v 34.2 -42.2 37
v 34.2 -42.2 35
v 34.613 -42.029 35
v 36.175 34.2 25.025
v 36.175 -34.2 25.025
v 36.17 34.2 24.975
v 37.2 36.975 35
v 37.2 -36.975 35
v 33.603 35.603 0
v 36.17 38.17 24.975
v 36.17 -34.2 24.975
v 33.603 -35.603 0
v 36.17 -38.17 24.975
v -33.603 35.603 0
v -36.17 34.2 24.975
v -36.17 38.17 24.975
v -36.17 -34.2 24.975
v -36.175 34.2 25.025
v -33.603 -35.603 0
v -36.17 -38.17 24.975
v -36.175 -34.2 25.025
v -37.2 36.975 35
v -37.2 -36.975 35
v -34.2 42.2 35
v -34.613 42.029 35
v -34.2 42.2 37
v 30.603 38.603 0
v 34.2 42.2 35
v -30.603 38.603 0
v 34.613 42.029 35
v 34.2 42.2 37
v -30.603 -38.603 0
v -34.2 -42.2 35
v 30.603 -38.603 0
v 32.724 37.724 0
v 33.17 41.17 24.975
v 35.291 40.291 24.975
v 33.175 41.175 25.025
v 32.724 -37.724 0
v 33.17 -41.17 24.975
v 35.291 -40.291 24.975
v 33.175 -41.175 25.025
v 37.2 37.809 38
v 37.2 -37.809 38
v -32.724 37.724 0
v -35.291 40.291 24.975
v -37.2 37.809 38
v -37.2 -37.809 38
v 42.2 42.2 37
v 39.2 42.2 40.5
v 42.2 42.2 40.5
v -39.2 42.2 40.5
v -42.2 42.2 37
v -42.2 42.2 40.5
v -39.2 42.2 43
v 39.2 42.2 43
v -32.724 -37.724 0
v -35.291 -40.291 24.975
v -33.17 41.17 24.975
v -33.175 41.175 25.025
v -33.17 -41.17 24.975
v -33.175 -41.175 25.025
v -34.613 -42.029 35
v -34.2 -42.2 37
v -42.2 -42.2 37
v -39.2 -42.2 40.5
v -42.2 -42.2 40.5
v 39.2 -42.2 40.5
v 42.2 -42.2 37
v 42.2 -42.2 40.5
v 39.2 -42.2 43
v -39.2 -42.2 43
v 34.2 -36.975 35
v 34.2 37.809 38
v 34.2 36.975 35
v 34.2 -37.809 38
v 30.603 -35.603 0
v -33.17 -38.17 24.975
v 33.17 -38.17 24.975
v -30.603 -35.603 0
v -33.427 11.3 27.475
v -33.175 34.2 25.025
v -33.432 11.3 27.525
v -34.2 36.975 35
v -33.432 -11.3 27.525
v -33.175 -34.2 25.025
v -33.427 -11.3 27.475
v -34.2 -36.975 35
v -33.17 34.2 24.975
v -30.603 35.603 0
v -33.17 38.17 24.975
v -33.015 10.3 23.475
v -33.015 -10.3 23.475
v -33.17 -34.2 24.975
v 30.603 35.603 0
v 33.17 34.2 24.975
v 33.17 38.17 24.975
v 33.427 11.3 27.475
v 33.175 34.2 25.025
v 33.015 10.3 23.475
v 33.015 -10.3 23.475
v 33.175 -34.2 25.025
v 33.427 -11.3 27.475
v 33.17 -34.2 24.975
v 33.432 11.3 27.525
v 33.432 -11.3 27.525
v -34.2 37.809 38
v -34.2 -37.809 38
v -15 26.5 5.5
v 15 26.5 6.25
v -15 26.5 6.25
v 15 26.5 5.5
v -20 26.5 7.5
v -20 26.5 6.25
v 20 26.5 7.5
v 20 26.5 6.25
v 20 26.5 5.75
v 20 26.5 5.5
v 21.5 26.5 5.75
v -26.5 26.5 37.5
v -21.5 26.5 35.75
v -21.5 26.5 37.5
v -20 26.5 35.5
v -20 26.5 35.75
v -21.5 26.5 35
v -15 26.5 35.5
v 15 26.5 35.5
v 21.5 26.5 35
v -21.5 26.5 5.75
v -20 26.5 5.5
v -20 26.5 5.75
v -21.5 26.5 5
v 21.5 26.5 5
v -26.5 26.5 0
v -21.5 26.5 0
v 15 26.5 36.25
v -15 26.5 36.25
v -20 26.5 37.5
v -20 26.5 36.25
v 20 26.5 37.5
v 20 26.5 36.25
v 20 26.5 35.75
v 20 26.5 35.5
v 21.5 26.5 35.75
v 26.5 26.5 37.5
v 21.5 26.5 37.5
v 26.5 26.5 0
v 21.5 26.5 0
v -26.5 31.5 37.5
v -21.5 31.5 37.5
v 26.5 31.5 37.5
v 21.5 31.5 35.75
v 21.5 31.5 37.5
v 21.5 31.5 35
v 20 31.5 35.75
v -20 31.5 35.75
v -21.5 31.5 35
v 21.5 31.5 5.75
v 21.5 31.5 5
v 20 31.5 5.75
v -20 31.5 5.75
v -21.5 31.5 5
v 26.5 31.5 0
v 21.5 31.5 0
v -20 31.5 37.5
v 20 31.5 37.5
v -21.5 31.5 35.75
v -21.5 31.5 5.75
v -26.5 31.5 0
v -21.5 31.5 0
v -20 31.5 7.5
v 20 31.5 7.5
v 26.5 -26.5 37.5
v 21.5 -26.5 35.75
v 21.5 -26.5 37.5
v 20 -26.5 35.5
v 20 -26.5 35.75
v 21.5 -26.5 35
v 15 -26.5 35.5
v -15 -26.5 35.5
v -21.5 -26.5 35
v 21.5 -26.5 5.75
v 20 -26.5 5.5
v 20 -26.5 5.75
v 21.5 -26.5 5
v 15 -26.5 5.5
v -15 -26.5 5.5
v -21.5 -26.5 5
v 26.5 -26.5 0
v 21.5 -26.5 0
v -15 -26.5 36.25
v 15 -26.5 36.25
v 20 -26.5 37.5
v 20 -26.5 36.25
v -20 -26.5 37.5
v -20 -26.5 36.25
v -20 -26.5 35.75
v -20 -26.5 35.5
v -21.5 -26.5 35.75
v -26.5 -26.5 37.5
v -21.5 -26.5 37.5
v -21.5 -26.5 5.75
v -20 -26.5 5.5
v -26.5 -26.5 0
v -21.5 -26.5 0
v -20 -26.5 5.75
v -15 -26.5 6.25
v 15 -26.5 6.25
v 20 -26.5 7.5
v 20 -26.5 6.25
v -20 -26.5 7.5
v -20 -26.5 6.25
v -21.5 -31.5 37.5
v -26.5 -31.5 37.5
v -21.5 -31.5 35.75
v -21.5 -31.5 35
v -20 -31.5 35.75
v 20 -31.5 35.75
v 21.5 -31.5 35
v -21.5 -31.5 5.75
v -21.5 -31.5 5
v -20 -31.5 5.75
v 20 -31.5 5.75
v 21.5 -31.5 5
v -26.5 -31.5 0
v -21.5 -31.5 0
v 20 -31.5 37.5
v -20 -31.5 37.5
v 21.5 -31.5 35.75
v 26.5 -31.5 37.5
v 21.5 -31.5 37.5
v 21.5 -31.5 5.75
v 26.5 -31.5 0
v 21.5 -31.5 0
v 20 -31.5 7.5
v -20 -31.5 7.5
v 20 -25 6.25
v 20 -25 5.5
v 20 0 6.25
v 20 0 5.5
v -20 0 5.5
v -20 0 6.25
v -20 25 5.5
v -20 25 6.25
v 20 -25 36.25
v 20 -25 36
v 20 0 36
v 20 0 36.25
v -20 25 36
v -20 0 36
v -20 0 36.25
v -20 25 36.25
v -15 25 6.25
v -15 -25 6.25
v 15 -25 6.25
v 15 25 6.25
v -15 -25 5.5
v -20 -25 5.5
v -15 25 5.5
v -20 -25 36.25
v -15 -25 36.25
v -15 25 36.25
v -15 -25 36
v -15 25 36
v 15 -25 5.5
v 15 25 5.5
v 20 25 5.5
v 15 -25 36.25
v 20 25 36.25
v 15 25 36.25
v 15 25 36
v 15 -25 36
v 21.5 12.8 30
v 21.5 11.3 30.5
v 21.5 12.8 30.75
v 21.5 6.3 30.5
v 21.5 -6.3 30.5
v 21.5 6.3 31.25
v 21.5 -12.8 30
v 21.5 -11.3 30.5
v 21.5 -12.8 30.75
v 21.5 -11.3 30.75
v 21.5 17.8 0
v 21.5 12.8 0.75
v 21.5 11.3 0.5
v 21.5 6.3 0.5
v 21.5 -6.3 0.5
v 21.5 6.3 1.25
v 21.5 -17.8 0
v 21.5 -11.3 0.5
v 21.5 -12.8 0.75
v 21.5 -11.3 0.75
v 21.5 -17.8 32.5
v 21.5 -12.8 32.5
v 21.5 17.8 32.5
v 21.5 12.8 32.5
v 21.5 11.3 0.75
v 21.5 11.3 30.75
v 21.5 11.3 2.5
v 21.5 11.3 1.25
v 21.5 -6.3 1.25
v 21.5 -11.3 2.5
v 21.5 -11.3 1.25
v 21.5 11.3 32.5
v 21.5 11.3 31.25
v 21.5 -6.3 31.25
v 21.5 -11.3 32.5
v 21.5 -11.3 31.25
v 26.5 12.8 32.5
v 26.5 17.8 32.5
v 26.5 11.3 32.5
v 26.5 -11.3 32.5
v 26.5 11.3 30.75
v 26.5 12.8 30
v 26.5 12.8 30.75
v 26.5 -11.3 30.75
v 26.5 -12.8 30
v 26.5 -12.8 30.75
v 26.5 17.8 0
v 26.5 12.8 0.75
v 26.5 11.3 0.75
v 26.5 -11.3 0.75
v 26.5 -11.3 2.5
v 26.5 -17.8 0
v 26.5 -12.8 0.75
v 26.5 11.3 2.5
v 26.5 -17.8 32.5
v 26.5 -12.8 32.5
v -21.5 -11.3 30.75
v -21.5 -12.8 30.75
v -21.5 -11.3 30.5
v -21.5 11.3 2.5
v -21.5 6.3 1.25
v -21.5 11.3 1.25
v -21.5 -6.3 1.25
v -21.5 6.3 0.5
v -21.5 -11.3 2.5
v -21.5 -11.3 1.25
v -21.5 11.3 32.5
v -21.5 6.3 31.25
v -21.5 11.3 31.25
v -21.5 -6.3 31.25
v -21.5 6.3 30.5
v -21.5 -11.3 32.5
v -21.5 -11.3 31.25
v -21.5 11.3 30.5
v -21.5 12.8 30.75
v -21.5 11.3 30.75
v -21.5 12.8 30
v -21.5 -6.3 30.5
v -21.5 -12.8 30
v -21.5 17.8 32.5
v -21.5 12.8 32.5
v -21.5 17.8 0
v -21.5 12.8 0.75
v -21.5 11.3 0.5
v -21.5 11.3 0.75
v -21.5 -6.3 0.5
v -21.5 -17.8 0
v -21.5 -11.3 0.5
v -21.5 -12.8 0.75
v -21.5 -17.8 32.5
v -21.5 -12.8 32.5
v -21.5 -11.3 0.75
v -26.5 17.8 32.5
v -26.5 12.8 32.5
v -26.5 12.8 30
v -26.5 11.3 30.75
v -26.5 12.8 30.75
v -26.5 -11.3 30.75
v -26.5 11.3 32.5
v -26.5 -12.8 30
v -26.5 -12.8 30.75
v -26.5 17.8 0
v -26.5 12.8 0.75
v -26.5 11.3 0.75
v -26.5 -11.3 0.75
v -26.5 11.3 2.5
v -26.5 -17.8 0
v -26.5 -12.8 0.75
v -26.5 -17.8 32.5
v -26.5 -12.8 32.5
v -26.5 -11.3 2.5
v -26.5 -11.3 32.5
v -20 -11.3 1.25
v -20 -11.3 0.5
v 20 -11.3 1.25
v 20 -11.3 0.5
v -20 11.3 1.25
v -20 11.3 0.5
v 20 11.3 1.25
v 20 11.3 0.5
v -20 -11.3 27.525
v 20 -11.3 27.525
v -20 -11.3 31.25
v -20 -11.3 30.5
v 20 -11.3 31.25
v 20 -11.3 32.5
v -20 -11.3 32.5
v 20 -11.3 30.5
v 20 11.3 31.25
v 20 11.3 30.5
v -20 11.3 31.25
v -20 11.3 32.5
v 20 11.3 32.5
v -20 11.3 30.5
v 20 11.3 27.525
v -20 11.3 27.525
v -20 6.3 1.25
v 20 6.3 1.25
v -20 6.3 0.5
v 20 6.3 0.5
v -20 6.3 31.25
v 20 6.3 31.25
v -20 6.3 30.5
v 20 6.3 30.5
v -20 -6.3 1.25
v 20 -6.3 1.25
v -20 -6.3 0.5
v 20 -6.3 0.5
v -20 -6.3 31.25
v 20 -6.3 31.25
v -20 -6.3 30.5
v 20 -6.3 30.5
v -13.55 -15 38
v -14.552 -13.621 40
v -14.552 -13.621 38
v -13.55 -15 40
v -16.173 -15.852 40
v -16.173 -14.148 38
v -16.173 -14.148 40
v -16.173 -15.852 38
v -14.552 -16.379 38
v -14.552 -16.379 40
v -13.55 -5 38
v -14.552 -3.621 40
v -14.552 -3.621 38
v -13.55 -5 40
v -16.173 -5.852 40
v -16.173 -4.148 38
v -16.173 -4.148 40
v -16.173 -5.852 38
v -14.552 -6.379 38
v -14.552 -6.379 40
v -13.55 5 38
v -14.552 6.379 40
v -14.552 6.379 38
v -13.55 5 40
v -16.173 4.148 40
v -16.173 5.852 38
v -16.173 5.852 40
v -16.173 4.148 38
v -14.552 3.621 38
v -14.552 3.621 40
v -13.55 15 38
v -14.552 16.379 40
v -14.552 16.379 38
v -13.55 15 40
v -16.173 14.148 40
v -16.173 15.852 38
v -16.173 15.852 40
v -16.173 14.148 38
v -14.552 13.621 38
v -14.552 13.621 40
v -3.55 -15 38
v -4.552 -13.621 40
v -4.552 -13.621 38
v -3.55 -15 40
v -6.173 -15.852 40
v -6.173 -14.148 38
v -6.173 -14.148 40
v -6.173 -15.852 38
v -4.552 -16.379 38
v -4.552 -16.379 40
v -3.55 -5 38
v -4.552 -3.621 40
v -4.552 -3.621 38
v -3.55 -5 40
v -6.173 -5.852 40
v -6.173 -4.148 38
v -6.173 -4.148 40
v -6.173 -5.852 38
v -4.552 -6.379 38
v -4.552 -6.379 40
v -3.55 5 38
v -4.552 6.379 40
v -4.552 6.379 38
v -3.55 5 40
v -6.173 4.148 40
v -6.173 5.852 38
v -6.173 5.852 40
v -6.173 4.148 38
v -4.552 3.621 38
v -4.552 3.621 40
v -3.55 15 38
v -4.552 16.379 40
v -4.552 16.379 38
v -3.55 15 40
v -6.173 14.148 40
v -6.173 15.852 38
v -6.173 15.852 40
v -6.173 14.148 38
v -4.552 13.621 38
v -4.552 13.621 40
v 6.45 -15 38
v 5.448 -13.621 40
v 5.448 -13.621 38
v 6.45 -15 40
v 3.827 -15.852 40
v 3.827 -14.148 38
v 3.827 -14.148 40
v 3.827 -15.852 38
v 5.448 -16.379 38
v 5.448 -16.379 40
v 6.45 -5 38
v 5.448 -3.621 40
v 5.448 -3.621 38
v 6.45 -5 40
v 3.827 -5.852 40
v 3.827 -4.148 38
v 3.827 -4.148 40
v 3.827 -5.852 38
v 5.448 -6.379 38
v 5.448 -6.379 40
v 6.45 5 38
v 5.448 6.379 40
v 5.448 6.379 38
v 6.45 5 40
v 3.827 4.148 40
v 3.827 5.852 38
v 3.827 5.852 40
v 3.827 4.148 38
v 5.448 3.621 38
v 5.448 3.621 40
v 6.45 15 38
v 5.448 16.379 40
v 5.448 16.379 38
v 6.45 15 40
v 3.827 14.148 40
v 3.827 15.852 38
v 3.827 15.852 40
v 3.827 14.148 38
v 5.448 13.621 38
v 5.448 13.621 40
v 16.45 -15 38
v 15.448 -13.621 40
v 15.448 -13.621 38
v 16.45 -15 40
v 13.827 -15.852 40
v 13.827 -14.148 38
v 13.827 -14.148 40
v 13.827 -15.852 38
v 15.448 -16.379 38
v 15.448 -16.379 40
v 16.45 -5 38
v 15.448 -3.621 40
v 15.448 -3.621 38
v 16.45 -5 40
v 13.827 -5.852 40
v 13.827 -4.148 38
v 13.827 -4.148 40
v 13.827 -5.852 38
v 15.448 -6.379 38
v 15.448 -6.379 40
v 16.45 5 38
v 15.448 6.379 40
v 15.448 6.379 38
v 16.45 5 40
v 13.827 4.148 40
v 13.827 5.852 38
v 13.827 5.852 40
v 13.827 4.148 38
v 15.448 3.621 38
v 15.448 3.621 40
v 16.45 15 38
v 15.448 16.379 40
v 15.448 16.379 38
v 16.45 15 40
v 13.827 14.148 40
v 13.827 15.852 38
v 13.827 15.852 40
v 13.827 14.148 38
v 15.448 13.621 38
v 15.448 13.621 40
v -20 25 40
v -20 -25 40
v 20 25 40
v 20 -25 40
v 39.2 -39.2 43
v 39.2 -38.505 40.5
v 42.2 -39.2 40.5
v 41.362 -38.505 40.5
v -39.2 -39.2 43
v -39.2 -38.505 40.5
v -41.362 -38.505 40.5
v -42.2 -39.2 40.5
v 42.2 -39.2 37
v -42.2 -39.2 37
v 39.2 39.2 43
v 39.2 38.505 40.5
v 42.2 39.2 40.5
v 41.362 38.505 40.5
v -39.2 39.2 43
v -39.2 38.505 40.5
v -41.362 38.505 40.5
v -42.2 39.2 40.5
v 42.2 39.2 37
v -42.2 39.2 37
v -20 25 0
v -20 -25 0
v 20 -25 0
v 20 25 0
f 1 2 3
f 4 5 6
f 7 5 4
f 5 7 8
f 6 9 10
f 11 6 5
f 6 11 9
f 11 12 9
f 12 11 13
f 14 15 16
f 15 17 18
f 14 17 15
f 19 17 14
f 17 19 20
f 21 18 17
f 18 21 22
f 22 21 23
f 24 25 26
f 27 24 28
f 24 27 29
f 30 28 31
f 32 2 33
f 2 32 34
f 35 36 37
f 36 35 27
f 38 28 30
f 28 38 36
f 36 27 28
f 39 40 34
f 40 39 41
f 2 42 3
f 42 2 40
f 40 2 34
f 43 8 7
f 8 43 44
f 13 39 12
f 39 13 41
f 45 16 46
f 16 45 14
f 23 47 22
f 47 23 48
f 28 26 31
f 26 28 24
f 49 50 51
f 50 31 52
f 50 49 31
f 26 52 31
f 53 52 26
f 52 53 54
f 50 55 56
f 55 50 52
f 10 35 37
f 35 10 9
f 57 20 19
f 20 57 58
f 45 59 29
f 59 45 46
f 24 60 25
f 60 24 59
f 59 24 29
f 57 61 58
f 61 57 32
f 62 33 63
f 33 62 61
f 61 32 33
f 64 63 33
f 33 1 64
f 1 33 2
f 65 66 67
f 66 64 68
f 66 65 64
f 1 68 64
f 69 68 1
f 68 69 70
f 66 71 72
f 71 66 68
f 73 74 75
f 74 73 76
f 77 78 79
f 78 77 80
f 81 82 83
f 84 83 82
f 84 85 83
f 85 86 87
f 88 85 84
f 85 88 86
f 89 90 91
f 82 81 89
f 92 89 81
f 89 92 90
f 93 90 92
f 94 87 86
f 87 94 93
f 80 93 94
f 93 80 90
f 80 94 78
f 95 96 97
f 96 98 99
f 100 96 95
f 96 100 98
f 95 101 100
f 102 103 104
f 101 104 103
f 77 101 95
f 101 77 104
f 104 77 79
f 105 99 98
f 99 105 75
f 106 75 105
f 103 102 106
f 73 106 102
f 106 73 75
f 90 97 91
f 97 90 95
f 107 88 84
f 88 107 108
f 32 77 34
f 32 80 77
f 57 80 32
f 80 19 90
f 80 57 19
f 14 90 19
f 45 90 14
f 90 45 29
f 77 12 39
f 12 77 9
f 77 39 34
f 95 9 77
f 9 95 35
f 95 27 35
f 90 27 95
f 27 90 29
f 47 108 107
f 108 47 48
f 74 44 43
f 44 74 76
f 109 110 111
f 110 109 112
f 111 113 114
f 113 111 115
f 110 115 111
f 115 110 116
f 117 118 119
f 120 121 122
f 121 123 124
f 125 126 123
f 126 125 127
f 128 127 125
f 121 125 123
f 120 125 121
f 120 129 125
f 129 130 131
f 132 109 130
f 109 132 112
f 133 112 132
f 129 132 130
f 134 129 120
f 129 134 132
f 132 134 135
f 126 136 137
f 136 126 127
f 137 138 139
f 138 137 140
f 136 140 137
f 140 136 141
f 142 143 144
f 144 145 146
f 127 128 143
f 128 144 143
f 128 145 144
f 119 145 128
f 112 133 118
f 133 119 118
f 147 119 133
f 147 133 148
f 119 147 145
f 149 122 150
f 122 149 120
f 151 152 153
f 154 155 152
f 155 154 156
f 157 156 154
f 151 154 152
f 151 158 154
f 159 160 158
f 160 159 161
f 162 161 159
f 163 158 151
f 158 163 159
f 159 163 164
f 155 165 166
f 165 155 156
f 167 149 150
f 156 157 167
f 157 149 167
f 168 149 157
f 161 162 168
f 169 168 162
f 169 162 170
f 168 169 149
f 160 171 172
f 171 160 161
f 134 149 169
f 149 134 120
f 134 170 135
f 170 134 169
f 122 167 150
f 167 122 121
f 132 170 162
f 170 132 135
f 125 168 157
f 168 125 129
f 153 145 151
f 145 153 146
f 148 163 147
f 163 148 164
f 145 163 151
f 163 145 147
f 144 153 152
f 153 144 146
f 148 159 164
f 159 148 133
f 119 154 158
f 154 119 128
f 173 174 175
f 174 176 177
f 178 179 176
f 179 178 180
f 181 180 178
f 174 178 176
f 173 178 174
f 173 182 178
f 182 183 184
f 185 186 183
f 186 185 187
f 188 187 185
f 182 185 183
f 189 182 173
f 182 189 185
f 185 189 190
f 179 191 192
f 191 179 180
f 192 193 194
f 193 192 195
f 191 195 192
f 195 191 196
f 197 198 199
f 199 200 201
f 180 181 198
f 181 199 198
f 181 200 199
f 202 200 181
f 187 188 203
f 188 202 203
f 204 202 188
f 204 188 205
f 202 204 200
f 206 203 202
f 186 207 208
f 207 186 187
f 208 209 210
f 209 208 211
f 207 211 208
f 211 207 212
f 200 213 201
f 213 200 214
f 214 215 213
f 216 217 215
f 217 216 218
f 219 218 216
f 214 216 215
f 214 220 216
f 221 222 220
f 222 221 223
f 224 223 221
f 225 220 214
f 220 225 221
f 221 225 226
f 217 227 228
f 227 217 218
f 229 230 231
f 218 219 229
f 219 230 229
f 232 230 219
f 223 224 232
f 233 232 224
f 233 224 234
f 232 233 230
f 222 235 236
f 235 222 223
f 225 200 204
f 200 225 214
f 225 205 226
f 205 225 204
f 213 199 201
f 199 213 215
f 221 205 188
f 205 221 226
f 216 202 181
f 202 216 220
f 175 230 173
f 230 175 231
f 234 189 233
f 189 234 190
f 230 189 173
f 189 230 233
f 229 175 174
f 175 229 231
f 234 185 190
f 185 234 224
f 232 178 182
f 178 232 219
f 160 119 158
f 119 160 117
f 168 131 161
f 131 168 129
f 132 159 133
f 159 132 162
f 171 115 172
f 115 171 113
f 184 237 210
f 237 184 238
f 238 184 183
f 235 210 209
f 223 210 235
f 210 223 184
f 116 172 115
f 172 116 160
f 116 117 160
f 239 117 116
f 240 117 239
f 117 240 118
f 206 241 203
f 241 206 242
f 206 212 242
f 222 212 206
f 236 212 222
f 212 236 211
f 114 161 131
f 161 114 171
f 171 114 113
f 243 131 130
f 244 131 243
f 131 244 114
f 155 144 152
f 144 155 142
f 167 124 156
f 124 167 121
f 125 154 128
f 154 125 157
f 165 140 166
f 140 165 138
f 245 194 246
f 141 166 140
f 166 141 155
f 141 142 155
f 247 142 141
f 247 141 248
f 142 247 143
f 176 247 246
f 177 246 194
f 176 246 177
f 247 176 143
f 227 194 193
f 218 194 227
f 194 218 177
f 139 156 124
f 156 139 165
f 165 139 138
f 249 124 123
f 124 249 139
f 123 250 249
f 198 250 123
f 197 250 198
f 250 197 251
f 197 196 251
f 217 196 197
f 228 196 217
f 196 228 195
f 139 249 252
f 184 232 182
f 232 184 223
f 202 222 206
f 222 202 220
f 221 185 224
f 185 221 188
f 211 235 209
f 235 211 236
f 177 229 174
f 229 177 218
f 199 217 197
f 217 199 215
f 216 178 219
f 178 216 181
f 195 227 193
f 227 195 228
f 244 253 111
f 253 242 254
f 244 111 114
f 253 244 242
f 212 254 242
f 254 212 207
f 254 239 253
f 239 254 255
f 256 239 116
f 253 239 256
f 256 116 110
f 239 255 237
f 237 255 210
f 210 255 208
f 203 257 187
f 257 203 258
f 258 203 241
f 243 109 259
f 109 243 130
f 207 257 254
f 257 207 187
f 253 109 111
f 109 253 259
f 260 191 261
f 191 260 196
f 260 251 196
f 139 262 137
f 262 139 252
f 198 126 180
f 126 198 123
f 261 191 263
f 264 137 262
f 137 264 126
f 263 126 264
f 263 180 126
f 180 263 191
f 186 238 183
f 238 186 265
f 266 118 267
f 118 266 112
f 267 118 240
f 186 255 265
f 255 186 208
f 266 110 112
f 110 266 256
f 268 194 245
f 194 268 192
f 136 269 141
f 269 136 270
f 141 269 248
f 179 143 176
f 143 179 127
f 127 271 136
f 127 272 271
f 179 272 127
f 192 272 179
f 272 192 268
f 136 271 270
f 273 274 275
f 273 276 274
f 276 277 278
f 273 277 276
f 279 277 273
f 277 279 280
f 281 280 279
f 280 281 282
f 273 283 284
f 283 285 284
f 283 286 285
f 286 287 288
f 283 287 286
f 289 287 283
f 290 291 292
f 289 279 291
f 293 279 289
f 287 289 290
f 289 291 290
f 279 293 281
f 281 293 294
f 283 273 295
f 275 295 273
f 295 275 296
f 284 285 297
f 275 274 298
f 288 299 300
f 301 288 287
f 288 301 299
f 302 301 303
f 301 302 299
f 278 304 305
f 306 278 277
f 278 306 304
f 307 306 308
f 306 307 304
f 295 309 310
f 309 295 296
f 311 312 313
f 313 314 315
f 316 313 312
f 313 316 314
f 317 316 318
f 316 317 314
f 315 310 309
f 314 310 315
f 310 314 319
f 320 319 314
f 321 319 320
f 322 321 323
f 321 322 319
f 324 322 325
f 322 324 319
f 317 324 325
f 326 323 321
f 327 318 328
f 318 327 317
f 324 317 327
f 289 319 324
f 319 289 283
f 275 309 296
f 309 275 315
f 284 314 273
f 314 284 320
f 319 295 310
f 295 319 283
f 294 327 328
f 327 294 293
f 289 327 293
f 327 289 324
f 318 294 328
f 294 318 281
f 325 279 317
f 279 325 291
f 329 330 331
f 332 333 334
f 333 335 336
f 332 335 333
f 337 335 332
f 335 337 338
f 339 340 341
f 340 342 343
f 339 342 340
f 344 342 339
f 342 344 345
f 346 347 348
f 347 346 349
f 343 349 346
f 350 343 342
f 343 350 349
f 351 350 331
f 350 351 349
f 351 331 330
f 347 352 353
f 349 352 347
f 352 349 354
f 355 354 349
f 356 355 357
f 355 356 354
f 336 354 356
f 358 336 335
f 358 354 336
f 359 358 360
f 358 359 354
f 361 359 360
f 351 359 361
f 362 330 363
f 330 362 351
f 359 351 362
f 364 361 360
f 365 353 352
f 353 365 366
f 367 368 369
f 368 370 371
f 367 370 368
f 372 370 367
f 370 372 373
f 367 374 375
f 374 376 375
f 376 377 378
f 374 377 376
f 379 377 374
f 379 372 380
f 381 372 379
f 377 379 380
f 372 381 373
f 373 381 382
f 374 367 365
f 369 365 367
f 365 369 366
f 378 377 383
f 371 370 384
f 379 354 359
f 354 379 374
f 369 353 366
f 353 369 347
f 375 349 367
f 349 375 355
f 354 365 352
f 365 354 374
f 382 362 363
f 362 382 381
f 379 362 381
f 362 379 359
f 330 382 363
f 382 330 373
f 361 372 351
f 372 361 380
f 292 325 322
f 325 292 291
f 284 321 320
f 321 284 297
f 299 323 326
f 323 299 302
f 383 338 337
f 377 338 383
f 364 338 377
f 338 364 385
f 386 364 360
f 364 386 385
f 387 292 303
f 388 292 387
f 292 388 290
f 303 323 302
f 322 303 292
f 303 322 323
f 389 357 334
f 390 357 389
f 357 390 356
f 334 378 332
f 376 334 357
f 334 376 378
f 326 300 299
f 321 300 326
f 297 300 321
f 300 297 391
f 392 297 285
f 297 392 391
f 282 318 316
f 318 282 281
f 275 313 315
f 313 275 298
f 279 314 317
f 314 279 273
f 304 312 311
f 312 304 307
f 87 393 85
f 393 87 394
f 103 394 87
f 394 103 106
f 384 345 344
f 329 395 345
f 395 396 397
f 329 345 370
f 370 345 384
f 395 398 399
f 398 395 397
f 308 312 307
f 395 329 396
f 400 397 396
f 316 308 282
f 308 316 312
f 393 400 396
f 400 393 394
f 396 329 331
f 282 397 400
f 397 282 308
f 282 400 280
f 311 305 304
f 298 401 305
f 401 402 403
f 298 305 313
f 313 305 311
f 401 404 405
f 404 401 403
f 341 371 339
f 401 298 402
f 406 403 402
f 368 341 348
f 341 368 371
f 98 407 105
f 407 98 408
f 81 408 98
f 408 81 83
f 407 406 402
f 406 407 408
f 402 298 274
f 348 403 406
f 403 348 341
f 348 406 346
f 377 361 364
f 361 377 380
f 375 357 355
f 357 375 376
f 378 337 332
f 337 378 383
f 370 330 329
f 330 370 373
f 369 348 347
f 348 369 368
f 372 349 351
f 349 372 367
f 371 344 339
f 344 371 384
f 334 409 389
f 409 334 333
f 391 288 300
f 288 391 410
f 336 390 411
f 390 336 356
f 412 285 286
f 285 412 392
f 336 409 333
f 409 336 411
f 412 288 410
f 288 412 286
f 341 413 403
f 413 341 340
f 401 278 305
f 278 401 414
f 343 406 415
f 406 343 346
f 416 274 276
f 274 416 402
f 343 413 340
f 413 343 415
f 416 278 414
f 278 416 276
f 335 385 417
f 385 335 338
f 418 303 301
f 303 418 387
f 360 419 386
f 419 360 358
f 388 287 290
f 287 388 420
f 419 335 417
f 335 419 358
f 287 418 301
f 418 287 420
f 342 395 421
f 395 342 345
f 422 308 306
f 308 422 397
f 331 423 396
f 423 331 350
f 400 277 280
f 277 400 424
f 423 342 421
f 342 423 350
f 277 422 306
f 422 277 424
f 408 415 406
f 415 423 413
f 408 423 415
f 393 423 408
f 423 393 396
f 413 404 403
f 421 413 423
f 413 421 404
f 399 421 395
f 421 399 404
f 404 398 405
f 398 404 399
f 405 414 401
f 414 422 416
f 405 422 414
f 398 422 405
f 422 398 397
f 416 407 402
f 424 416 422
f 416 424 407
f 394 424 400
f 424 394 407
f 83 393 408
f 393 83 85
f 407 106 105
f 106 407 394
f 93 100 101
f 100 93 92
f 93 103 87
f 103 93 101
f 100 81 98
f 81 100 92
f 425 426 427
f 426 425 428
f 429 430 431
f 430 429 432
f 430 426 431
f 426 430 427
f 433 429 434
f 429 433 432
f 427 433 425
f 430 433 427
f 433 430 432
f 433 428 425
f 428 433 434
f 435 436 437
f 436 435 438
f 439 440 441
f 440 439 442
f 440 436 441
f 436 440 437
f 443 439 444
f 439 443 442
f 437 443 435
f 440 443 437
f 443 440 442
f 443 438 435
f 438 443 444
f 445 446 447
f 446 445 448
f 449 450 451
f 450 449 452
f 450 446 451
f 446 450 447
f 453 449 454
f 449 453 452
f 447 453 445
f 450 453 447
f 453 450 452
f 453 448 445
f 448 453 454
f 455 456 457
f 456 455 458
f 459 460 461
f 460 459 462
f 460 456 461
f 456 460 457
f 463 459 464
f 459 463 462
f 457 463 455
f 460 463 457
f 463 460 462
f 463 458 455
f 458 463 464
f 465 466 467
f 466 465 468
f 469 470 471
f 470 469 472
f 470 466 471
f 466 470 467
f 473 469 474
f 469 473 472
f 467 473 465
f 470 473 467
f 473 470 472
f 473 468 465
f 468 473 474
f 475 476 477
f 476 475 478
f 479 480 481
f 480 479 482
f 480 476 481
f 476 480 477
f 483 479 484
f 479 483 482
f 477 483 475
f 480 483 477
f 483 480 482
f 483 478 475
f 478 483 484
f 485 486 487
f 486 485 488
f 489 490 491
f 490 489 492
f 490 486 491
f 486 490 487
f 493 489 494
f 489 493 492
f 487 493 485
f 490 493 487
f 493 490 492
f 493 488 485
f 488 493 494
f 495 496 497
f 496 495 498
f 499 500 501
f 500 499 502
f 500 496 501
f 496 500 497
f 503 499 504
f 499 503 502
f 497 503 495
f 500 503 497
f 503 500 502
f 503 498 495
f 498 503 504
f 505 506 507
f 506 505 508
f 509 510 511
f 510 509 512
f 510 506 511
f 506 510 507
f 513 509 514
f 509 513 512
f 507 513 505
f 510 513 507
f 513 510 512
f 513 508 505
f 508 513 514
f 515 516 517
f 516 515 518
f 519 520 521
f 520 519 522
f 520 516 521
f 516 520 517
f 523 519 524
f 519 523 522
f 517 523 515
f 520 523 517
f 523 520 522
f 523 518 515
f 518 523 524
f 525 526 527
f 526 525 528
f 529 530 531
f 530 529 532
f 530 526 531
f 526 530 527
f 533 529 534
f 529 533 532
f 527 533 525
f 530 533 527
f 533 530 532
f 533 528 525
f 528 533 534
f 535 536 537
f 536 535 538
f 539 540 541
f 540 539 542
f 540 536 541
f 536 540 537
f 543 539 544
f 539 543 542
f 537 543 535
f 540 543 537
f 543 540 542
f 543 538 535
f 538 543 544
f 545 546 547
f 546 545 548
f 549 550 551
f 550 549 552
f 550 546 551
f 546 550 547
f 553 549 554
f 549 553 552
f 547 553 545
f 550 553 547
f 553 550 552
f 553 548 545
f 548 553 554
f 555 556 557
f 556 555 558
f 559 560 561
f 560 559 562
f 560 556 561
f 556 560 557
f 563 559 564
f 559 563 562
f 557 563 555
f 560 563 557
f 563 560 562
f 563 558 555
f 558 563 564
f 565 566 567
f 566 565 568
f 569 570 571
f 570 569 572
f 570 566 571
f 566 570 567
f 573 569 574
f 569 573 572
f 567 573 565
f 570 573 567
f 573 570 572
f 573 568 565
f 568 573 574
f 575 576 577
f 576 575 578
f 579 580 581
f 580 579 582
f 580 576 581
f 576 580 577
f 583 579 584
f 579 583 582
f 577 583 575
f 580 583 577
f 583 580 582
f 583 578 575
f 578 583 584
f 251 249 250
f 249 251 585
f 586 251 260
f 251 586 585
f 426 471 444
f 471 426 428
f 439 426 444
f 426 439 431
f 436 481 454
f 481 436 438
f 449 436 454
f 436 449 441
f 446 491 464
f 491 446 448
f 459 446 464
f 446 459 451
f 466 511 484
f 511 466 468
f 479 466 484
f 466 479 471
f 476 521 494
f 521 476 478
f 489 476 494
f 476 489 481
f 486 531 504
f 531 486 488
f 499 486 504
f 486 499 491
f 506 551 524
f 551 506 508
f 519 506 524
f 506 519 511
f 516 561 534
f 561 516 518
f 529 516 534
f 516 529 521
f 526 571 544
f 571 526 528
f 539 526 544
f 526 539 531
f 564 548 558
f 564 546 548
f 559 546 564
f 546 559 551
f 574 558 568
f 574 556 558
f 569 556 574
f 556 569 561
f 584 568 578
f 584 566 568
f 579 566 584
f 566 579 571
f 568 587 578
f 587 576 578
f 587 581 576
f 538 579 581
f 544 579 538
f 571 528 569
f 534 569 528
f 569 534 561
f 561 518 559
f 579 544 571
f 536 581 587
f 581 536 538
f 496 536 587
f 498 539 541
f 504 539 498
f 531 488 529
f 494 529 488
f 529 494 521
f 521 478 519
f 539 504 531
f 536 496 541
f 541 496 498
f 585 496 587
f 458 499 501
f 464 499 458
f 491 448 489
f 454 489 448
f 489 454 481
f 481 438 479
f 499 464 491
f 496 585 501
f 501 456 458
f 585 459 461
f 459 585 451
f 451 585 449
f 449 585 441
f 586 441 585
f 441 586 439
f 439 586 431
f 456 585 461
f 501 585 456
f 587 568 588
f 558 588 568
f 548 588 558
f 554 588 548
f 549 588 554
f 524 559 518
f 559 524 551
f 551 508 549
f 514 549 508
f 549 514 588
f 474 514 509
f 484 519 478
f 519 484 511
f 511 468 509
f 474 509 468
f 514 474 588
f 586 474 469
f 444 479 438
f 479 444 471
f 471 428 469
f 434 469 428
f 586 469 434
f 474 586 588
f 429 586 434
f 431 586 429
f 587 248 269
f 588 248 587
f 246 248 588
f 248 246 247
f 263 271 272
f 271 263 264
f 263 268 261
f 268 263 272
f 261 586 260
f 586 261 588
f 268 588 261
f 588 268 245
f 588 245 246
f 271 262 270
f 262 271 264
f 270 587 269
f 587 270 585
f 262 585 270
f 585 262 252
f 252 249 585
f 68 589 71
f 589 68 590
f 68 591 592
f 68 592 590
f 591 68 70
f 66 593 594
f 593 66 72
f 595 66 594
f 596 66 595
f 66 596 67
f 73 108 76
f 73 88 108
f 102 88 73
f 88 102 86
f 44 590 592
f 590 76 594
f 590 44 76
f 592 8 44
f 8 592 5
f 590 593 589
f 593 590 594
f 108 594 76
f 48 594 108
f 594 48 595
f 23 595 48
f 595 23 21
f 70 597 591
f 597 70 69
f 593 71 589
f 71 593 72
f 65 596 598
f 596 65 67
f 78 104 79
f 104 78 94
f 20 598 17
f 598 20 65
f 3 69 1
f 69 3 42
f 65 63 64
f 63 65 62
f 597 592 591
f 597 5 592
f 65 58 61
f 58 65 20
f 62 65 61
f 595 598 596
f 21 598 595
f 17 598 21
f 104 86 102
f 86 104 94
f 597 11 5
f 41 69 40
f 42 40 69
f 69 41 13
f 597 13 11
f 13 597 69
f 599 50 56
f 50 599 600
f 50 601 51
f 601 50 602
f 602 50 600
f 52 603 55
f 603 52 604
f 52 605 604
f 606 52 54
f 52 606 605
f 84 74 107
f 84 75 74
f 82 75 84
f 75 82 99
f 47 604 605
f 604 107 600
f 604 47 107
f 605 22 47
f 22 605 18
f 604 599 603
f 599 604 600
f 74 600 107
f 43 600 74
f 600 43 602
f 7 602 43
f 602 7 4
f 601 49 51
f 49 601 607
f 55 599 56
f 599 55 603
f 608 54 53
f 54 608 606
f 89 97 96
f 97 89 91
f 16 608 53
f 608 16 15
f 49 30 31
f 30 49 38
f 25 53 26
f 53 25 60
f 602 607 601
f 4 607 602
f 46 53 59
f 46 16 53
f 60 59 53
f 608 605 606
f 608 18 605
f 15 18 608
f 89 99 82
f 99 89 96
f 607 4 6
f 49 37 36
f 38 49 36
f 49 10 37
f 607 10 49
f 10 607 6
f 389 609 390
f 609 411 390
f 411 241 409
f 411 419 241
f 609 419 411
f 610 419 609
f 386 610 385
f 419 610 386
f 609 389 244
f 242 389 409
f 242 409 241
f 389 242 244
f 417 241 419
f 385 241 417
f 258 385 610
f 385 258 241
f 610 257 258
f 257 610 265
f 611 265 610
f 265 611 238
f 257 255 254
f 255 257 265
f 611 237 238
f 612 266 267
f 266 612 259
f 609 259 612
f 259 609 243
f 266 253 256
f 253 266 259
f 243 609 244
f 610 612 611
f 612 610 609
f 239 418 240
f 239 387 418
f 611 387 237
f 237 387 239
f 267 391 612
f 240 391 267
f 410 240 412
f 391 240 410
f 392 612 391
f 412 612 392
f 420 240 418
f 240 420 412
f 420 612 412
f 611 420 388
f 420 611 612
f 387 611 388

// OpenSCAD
/*

OpenFlexure long travel XY stage

This is a linearised flexure stage with twice the nominal travel of
the standard microscope stage of the same height.  Actuation is a
work in progress (!)

The basic principle is of stacked parallelograms - both deform at
the same rate, meaning the vertical displacements cancel and we get
proper linear motion.  This is dependent on the stiffness of the 
flexure links - i.e. the vertical stiffness, in a pin-joint model, is
not infinite.  However, as the linear stiffness scales with lever
length squared (assuming constant torsional stiffness from the hinge)
we'd expect the stiffness in Z to be something like 400x stiffer than
XY, so I'm hoping all will be well...

*/
use <utilities.scad>;
d=0.05; //a small distance (to avoid coincident points)
dz=0.5; //thickness required for one bridge - ideally just >2 layers
function zeroz(size) = [size[0], size[1], 0];

zflex = [5, 1.5, 0.75]; //dimensions of flexure (flex axis in XY plane)
flex_a = 0.12; //maximum flex angle in radians
sample_z = 40;
stage = [40,50,5]; //size of the moving platform
leg_top_h = 2.5; //how far above the flexure link the legs extend
flex_z_offset = leg_top_h + 2.5; //staggering in Z between the XY flexure stages
xy_lever = sample_z - stage[2]-flex_z_offset; //length of the effective lever
xy_travel = 2*xy_lever*flex_a; //maximum travel in +/- xy directions
bottom_stage = zeroz(stage) + [0, -2*(zflex[0]+zflex[1]+xy_travel), leg_top_h];



module xy_table_4legs(stage, lever, leg_top_h=leg_top_h, flexure_bottom=0, zflex=zflex, dz=dz){
    // Four legs and flexures to join them, making a two-parallelogram support for an XY stage
    // Legs are first linked along the Y direction, then the two pairs are bridged in the X direction.
    // stage is the size of the moving stage (only XY matter, Z if supplied is ignored)
    // lever is the length of the legs, measured between flexures
    // leg_top_h is the extra height above the upper flexures for stiffness
    // flexure_bottom is the Z position of the lower flexures
    // zflex is the size (X=width, Y=length, Z=thickness) of flexures
    // dz is the Z offset between X and Y flexures - it must be > 1 layer, preferably >2 layers.
    corner = zeroz(stage)/2; //the corner of the stage
    leg_pos = corner + [1, 1, 0] * zflex[1]; //the position of the leg (slightly out from stage)
    leg = [1, 1, 0] * zflex[0] + [0, 0, flexure_bottom + lever + leg_top_h]; //size of legs
    //legs
    reflect([1,0,0]) reflect([0,1,0]) translate(leg_pos) cube(leg);
    //flexure bridges between legs (top & bottom)
    translate([0,0,flexure_bottom]) reflect([1,0,0]) repeat([0,0,lever],2){
        hull() reflect([0,1,0]) translate(leg_pos) cube(zflex); //flexure bridge between legs
        hull() reflect([0,1,0]) translate(corner + [zflex[1],-d,0]) cube([zflex[0],d,leg_top_h]); //stiffen the middle
    }
    //flexures between pairs of legs (in X)
    translate([0,0,flexure_bottom]) reflect([0,1,0]) repeat([0,0,lever],2){
        hull() reflect([1,0,0]) translate(corner + [d,0,dz]) rotate(-90) cube(zflex);
    }
}

module mechanism_void(){
    leg = [1,1,0] * (zflex[0]+zflex[1]); //size of legs in XY
    travel = [1,1,0] * xy_travel; //distance travelled in XY
    clearance = [1,1,0]; //extra space added around mechanism (NB half of this is added each side)
    hull(){
        translate([0,0,0]){
            // bottom of mechanism (NB travels +/- xy_travel/2)
            cube(zeroz(stage) + 2*leg + travel + clearance + [0,0,d], center=true);
            cube(zeroz(bottom_stage) + 2*leg + travel + clearance + [0,0,d], center=true);
        }
        translate([0,0,sample_z]){
            // top of mechanism
            cube(zeroz(stage) + 2*leg + 2*travel + clearance + [0,0,stage[2]*2], center=true); //moves full range of travel
            cube(zeroz(bottom_stage) + 2*leg + clearance + [0,0,stage[2]*2], center=true); //doen't move
        }
    }
}
module casing(hollow=true){
    difference(){
        minkowski(){
            mechanism_void();
            cylinder(r=3,h=2*d, $fn=8);
        }
        if(hollow) mechanism_void();
        mirror([0,0,1]) cylinder(r=999,h=999,$fn=8);
        translate([0,0,sample_z - 2]) cylinder(r=999,h=999,$fn=8);
    }
}

union(){
    //outer casing
    casing();
    //bottom stage
    difference(){
        hull(){
            translate(-zeroz(stage)/2) cube(zeroz(stage) + [0, 0, flex_z_offset + dz + zflex[2]]);
            translate(-zeroz(bottom_stage)/2) cube(bottom_stage);
        }
    }
    //top stage
    translate([0,0,sample_z-stage[2]/2+dz]) difference(){
        cube(stage-[0,0,2*dz],center=true);
        repeat([10,0,0],4,center=true) repeat([0,10,0],4,center=true) cylinder(d=2.9, h=999);
    }
    //legs and flexures supporting top stage
    rotate(90) xy_table_4legs([stage[1],stage[0]], xy_lever, flexure_bottom=flex_z_offset);
    //legs and flexures supporting bottom stage
    xy_table_4legs(bottom_stage, xy_lever, flexure_bottom=0);
    //anchor for the XY mechanism (to the casing)
    intersection(){
        sequential_hull(){
            translate([0,0,xy_lever]) cube(zeroz(bottom_stage)+[0,0,2*leg_top_h], center=true);
            translate([0,0,xy_lever - leg_top_h]) cube([bottom_stage[0],bottom_stage[1],d], center=true);
            translate([0,0,xy_lever - leg_top_h]) cube([999,bottom_stage[1],d], center=true);
            translate([0,0,xy_lever - leg_top_h - 4]) cube([999,bottom_stage[1]-2,d], center=true);
        }
        casing(hollow=false);
    }
    //notches to hold thread (v1)
    reflect([0,1,0]) difference(){
        void_d = max(stage[1]+2*xy_travel, bottom_stage[1])/2 + zflex[0] + zflex[1] + 0.5;
        sequential_hull(){
            translate([-void_d-3, -void_d - 3, sample_z - 3]) cube([2*void_d+6, 3, 6]);
            intersection(){
                casing();
                translate([0,-void_d,sample_z - 15]) cube([999,10,d],center=true);
            }
        }
        reflect([1,0,0]) translate([void_d,-999,sample_z+0.5]) cube([10,999,10]);
    }
    //motor mounts
    //translate([
}
